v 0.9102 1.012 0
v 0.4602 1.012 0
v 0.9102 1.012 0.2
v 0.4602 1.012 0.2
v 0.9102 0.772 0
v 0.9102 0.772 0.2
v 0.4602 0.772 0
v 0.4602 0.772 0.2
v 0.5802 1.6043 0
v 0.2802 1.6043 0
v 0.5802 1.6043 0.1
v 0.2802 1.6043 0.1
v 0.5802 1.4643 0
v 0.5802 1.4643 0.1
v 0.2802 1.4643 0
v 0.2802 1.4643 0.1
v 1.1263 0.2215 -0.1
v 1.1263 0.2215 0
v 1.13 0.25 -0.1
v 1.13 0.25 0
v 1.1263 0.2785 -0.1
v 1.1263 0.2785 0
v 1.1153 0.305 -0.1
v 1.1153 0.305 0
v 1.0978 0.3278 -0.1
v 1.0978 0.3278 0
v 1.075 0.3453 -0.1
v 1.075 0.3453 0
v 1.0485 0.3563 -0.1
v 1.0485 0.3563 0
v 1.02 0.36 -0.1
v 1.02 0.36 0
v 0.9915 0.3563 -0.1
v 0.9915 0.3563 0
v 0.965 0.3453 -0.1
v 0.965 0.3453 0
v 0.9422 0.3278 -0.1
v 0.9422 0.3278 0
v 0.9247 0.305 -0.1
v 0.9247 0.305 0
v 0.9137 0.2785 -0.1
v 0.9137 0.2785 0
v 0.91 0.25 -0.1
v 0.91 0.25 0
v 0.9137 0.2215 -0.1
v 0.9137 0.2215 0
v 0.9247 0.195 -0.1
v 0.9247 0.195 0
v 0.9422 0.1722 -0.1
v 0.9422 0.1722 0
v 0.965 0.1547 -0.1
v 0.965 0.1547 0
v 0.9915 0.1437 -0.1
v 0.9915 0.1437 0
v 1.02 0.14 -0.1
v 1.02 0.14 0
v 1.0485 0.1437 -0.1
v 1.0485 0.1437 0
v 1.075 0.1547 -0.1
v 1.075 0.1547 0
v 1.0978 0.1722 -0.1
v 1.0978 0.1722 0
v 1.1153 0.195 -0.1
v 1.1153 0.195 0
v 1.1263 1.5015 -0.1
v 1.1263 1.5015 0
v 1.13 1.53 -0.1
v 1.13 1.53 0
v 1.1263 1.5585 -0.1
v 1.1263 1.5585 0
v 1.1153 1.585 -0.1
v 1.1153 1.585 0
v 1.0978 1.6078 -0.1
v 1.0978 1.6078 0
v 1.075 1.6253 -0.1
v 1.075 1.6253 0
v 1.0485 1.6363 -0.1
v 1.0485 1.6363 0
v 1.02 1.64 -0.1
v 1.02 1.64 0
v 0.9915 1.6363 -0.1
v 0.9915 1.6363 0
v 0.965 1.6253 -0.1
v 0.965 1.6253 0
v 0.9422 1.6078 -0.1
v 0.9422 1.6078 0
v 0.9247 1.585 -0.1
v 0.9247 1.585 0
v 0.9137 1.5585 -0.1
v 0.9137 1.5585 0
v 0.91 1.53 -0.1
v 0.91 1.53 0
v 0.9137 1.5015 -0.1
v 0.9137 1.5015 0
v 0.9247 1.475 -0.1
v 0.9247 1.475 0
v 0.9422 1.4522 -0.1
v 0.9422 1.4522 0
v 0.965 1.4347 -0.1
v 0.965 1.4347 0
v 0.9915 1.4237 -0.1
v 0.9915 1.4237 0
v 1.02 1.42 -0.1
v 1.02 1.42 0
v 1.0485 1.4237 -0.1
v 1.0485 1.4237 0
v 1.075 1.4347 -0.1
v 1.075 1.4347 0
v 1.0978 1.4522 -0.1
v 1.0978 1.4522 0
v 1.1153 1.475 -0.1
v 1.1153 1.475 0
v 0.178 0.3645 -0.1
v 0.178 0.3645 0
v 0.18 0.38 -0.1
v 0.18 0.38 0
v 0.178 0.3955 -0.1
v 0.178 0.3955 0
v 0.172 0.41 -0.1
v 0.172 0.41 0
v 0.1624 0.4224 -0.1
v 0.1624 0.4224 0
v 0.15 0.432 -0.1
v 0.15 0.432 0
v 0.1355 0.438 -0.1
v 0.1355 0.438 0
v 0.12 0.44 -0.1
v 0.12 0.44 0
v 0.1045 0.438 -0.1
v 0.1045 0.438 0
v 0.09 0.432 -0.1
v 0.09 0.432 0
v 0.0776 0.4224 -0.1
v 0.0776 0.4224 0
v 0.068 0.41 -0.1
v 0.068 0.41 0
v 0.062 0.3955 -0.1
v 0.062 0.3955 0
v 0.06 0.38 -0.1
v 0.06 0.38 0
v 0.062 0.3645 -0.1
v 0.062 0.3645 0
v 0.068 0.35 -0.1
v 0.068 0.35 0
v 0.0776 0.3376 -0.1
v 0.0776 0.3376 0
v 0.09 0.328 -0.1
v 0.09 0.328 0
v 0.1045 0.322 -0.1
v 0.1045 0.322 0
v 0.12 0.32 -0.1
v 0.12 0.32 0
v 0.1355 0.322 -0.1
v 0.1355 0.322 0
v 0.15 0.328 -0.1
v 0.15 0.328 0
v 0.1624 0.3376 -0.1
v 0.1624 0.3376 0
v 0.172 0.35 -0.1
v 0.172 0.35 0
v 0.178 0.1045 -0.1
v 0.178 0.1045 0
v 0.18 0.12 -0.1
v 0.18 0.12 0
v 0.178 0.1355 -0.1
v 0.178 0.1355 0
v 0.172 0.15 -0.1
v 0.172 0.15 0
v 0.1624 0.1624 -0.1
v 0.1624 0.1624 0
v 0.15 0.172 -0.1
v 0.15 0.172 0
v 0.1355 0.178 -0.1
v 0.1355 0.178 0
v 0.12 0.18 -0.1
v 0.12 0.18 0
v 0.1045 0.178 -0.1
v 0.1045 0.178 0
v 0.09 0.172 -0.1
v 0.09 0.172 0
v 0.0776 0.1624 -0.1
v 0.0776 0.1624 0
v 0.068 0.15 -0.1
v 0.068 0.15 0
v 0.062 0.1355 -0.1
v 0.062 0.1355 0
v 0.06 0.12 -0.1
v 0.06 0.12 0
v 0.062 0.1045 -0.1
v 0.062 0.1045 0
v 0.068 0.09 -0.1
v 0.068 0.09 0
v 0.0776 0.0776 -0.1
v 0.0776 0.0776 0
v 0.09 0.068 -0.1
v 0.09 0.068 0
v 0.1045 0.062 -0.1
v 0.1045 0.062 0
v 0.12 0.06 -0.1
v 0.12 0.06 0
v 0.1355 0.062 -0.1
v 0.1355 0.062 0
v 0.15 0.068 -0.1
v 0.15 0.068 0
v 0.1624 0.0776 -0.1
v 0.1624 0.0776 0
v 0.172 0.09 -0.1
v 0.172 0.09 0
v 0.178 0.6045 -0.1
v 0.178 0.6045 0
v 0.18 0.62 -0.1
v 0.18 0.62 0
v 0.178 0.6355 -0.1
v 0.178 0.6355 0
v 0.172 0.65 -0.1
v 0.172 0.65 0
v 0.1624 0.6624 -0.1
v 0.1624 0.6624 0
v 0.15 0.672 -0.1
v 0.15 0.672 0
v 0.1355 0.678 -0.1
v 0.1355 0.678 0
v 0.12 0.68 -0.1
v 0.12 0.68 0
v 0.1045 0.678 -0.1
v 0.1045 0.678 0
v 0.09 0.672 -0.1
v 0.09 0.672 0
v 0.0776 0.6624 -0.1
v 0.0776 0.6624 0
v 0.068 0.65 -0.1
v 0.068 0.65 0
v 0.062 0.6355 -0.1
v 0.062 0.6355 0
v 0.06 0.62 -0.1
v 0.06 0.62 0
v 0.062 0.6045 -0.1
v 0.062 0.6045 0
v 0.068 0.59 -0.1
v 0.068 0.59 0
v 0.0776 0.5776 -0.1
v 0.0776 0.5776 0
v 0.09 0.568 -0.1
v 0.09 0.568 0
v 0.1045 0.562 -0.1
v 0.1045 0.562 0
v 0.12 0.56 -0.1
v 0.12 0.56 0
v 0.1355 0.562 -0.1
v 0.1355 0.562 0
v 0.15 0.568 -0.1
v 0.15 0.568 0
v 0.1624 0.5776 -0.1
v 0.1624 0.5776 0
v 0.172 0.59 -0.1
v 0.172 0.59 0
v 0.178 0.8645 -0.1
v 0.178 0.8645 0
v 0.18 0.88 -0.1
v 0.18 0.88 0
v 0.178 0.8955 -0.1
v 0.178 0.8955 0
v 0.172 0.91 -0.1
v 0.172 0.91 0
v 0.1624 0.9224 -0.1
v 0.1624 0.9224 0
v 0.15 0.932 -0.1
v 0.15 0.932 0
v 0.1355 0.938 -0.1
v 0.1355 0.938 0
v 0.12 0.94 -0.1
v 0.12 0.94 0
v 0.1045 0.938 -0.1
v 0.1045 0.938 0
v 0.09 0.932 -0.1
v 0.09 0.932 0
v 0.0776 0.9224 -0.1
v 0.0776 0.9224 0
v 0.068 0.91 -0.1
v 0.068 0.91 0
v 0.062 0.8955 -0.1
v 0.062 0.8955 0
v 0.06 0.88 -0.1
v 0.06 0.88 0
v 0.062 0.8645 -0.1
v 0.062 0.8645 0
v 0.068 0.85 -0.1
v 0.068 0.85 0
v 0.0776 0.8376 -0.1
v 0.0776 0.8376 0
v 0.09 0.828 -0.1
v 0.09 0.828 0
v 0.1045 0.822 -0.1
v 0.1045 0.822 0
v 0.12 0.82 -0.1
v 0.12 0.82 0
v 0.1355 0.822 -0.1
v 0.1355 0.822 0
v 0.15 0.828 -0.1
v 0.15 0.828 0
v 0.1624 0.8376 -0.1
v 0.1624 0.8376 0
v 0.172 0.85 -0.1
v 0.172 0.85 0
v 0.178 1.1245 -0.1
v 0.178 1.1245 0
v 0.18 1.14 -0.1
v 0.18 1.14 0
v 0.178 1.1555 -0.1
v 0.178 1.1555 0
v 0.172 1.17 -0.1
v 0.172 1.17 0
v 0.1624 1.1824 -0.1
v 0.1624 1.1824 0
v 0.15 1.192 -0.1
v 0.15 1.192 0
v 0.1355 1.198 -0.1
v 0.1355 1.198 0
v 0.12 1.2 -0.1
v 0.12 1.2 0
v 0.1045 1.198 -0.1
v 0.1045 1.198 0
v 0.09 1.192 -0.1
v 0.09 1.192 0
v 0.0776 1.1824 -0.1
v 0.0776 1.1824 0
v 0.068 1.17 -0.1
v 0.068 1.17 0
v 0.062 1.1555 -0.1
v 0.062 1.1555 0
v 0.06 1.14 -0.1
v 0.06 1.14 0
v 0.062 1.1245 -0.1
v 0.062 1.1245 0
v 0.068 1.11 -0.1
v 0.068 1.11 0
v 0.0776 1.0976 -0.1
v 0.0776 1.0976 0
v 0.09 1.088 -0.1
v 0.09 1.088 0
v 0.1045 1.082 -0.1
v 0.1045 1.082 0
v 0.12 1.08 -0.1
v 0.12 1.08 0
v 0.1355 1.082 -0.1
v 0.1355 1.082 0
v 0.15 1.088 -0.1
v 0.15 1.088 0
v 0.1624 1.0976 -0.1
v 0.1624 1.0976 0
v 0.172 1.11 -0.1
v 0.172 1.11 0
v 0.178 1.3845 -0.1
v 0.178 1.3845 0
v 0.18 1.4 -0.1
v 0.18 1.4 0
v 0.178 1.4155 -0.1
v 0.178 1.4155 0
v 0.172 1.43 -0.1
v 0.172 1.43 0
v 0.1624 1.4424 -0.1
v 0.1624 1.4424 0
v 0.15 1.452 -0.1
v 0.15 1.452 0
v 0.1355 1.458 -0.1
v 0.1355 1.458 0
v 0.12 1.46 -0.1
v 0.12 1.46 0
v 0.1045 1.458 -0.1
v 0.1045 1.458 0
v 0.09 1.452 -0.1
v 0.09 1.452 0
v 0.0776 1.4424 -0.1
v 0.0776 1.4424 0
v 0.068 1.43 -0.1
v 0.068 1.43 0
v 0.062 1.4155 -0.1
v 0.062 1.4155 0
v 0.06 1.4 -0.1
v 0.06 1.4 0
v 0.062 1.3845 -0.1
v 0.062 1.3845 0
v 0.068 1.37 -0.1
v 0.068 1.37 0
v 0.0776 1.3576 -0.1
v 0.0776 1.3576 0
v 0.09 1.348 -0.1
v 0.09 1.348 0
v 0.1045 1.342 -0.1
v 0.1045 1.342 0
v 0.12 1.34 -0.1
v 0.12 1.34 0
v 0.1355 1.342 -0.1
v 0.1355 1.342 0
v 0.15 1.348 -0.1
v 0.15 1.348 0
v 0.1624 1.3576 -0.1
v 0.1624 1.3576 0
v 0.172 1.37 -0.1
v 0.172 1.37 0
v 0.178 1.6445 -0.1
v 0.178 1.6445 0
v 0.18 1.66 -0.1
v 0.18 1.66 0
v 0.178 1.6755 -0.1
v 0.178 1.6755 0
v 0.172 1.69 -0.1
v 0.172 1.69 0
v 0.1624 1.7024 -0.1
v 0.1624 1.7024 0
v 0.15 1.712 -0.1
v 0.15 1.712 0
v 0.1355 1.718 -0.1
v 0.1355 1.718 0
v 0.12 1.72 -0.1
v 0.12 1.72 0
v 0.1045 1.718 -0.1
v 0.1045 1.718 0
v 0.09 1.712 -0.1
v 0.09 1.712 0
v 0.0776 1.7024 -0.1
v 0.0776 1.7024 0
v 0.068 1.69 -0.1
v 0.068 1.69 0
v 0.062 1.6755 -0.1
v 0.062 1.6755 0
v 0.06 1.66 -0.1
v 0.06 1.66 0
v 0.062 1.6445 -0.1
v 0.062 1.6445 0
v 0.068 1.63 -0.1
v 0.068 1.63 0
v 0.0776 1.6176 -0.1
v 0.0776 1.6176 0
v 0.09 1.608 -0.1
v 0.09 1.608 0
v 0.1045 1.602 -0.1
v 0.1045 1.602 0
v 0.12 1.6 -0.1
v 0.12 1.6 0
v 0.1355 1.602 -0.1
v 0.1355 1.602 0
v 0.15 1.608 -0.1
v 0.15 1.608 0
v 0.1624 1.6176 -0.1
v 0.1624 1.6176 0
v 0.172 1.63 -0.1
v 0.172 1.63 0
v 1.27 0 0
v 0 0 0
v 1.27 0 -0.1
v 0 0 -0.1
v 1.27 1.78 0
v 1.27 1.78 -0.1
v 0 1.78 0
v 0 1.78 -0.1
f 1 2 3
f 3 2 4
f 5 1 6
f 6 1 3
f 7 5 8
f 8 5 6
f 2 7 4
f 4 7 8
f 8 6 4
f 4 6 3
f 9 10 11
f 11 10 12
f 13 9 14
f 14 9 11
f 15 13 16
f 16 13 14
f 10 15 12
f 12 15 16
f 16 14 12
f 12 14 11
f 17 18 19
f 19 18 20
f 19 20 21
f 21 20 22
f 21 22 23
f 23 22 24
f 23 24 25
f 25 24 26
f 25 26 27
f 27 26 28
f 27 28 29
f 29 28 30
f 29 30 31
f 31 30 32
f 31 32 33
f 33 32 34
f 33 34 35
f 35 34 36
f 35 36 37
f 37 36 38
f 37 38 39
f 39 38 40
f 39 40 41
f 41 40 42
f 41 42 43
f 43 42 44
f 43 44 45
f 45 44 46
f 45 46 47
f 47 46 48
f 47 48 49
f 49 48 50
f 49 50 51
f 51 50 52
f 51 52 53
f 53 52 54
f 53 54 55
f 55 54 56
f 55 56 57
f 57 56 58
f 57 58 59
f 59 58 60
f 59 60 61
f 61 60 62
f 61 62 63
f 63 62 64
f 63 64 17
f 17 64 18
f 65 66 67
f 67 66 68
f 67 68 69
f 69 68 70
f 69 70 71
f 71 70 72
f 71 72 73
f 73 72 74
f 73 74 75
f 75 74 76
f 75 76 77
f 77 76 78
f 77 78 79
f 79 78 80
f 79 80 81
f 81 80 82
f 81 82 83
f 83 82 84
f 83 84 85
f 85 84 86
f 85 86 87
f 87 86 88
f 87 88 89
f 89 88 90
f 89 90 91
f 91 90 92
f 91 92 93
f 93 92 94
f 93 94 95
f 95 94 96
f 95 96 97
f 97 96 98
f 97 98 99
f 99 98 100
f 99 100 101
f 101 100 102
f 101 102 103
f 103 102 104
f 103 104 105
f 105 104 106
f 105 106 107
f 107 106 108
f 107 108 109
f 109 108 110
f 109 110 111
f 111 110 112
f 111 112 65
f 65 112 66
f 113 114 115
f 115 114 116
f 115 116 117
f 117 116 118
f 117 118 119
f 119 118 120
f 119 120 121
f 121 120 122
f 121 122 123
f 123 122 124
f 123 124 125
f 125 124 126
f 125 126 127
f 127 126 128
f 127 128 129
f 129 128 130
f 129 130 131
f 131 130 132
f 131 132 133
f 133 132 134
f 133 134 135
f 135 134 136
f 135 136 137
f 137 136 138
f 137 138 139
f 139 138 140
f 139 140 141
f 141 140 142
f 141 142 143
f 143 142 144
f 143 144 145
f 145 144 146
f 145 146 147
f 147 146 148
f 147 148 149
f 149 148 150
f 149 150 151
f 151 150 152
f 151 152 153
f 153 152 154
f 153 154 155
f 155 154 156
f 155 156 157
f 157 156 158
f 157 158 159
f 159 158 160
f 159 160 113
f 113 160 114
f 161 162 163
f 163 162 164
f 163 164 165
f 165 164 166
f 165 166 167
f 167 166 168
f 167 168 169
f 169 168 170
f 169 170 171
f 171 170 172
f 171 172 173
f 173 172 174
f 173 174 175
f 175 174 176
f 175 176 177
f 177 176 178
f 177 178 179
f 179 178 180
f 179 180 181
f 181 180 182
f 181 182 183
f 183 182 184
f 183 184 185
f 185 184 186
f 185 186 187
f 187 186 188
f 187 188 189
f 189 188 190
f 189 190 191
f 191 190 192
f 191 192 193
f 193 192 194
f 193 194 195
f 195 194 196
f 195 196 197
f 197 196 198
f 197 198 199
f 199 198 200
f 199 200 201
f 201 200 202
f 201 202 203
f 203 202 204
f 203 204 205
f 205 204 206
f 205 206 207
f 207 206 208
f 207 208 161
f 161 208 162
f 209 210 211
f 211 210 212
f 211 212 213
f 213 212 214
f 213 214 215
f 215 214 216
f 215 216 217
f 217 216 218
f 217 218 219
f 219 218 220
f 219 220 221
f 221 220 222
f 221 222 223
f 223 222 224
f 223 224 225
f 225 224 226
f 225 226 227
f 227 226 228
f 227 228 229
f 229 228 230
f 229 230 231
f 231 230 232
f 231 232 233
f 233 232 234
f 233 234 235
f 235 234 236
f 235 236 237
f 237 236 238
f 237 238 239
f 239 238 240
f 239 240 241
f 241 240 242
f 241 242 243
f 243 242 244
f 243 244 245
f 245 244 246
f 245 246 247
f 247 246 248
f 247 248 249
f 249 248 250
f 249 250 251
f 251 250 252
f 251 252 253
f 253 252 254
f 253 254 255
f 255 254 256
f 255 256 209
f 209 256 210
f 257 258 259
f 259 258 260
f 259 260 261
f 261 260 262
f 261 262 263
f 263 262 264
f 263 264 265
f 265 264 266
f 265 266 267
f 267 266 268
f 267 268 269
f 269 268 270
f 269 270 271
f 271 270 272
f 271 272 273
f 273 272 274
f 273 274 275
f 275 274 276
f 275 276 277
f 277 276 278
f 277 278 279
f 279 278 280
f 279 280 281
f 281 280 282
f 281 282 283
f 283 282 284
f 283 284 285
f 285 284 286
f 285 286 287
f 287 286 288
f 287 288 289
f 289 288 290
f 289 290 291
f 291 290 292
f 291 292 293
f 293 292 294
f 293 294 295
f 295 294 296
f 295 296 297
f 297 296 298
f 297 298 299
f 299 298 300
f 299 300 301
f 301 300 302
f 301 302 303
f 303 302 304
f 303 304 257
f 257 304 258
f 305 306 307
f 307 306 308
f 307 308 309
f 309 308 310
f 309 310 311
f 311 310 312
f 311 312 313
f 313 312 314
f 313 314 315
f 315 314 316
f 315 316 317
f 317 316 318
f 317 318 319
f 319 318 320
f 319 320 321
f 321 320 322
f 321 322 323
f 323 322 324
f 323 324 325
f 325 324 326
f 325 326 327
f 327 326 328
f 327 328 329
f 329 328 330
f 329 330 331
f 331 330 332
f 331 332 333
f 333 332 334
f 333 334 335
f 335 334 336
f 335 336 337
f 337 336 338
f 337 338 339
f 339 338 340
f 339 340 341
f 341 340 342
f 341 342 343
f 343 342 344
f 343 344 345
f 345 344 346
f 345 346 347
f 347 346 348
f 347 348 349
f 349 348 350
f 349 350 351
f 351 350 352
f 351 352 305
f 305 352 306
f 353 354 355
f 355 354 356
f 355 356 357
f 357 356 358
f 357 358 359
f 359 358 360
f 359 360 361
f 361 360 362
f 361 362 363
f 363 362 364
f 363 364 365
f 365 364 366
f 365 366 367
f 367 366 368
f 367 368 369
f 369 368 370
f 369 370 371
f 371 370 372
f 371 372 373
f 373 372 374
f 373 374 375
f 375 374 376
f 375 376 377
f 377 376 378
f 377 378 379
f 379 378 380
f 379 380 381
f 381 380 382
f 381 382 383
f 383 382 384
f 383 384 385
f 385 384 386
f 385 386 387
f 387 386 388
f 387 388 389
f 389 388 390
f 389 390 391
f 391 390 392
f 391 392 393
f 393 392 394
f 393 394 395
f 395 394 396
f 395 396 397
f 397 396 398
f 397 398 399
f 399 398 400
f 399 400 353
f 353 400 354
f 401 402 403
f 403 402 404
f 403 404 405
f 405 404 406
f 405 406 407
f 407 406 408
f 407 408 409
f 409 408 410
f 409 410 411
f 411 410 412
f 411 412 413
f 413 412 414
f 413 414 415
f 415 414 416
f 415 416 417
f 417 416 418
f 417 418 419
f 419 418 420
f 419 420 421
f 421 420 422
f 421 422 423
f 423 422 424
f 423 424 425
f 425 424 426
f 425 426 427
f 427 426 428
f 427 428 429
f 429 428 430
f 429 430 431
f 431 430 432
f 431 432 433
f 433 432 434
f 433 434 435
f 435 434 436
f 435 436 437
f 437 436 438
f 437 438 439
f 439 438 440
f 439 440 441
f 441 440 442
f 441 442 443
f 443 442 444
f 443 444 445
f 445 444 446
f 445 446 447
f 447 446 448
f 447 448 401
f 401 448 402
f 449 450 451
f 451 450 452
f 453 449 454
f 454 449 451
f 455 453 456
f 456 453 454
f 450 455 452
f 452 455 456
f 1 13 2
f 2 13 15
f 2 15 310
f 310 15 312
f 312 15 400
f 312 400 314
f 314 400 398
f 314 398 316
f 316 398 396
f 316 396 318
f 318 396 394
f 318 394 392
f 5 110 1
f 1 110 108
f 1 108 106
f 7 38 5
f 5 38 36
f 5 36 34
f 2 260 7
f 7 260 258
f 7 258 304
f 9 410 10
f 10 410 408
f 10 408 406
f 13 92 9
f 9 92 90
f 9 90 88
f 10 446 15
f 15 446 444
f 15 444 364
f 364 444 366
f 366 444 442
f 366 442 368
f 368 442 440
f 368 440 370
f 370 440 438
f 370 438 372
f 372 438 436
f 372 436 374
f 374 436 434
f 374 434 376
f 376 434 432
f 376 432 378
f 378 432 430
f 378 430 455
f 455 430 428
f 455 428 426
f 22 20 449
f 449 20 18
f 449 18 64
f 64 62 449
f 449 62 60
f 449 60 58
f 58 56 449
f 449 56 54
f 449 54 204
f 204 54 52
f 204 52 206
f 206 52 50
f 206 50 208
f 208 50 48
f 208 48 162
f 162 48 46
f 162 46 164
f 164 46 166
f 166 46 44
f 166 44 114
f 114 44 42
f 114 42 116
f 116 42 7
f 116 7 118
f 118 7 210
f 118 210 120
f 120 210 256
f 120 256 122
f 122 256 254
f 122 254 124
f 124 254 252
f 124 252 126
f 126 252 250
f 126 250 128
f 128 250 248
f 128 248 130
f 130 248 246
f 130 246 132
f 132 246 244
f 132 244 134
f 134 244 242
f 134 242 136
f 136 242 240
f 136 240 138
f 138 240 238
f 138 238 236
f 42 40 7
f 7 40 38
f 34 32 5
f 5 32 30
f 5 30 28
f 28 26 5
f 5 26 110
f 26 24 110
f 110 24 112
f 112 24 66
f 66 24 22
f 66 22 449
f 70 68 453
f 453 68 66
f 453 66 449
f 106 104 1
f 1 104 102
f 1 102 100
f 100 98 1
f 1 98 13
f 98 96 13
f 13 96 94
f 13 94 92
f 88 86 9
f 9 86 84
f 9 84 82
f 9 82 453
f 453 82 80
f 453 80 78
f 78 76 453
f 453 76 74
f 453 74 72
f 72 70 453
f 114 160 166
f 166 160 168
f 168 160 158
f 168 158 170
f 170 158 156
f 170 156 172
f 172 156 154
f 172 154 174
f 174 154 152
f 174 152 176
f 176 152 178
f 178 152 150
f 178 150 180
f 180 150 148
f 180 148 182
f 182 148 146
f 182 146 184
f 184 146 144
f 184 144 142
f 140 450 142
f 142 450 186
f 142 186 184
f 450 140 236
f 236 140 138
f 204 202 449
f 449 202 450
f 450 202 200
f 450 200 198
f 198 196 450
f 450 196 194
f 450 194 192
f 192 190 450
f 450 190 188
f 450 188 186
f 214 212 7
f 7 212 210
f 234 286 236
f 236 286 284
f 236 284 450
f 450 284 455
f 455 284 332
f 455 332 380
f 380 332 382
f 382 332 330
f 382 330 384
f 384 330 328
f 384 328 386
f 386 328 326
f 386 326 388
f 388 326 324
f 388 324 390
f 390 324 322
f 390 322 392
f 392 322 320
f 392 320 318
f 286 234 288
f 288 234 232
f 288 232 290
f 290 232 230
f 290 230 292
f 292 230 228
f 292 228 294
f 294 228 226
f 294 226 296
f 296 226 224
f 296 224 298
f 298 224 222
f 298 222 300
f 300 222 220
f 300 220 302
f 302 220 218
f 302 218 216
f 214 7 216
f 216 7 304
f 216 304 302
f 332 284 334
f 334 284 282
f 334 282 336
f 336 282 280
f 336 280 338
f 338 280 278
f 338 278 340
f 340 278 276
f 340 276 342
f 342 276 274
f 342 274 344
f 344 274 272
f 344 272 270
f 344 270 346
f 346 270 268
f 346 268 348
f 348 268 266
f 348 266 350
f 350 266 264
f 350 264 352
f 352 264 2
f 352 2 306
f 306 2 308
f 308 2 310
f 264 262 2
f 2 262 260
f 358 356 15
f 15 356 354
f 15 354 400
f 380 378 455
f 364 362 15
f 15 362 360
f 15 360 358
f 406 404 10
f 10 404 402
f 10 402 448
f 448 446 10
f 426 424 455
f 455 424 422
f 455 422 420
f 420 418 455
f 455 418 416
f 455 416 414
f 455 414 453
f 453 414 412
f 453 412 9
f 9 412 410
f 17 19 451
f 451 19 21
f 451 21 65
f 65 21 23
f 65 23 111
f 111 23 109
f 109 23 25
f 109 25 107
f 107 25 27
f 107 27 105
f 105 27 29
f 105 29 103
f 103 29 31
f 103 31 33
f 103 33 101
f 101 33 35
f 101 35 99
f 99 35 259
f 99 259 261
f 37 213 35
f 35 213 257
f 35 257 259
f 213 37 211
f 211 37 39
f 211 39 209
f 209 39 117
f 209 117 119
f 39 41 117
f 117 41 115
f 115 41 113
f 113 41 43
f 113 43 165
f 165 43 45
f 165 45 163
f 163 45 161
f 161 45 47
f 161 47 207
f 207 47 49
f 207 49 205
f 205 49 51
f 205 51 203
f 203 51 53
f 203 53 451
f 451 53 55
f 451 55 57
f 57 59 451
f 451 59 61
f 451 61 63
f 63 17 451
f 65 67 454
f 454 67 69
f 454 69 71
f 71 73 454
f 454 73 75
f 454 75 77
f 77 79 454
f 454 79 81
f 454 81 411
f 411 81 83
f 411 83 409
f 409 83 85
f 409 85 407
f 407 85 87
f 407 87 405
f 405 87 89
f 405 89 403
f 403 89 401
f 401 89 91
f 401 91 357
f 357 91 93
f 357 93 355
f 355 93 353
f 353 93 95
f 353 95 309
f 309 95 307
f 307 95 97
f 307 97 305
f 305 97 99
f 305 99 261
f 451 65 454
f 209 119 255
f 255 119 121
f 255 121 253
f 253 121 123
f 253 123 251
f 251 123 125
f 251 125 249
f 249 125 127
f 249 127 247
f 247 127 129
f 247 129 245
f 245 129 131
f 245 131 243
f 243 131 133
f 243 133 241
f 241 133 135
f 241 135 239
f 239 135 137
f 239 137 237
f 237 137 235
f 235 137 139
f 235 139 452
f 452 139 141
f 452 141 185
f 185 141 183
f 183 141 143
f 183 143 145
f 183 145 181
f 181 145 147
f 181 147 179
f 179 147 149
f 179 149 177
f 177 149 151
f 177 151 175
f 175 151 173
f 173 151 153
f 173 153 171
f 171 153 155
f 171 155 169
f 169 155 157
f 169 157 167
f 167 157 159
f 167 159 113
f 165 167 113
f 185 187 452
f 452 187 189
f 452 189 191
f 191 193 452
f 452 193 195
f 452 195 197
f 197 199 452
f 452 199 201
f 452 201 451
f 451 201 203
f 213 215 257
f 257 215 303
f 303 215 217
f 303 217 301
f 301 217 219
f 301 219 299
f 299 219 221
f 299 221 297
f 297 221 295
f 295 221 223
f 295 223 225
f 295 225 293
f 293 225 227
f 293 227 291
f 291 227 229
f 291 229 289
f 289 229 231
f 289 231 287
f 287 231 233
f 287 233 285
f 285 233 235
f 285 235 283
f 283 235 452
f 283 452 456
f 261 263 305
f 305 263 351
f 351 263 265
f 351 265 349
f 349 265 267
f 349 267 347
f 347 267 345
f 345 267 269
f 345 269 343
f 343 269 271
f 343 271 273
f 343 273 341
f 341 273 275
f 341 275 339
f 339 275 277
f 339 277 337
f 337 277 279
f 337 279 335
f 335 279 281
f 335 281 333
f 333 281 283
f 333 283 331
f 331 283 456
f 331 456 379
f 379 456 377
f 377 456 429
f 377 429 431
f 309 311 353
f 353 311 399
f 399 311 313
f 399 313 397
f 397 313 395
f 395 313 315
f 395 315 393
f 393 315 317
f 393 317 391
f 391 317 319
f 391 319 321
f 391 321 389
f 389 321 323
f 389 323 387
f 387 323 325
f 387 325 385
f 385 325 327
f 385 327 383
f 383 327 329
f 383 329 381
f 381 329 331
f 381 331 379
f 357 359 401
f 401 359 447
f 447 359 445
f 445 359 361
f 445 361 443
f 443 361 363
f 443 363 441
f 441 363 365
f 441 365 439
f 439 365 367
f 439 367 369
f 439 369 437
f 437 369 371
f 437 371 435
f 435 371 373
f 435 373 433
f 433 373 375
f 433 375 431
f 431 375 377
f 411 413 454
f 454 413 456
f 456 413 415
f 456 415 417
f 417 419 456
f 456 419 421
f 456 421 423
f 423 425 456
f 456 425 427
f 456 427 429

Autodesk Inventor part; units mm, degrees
ref_plane "YZ Plane" through (0, 0, 0) normal (1, 0, 0) x (0, 1, 0)
ref_plane "XZ Plane" through (0, 0, 0) normal (0, 1, 0) x (-1, 0, 0)
ref_plane "XY Plane" through (0, 0, 0) normal (0, 0, 1) x (1, 0, 0)
sketch "Boceto1" plane through (0, 0, 0) normal (0, 0, 1) x (1, 0, 0)
  line L0 (0, 1.78) -> (1.27, 1.78)
  line L1 (0.4602, 1.012) -> (0.4602, 0.772)
  line L2 (0.4602, 0.772) -> (0.9102, 0.772)
  line L3 (0.9102, 0.772) -> (0.9102, 1.012)
  line L4 (0.9102, 1.012) -> (0.4602, 1.012)
  line L5 (0, 1.78) -> (0, 0)
  line L6 (0, 0) -> (1.27, 0)
  line L7 (1.27, 0) -> (1.27, 1.78)
  line L8 (1.27, 1.78) -> (1.02, 1.78)
  circle A0 centre (1.02, 1.53) radius 0.11
  line L9 (0, 1.78) -> (0.12, 1.78)
  circle A1 centre (0.12, 1.66) radius 0.06
  circle A2 centre (0.12, 1.4) radius 0.06
  circle A3 centre (0.12, 1.14) radius 0.06
  circle A4 centre (0.12, 0.88) radius 0.06
  circle A5 centre (0.12, 0.62) radius 0.06
  circle A6 centre (0.12, 0.12) radius 0.06
  circle A7 centre (0.12, 0.38) radius 0.06
  line L10 (0.2802, 1.6043) -> (0.2802, 1.4643)
  line L11 (0.2802, 1.4643) -> (0.5802, 1.4643)
  line L12 (0.5802, 1.4643) -> (0.5802, 1.6043)
  line L13 (0.5802, 1.6043) -> (0.2802, 1.6043)
  circle A8 centre (1.02, 0.25) radius 0.11
extrude "Extrusión1" add sketch "Boceto1" against normal blind 0.1 contours L0 L7 L6 L5 | L4 L3 L2 L1 | L13 L12 L11 L10
sketch "Boceto2" plane through (0, 0, 0) normal (0, 0, 1) x (1, 0, 0)
  line L0 (0, 1.78) -> (1.27, 1.78)
  line L1 (0.4602, 1.012) -> (0.4602, 0.772)
  line L2 (0.4602, 0.772) -> (0.9102, 0.772)
  line L3 (0.9102, 0.772) -> (0.9102, 1.012)
  line L4 (0.9102, 1.012) -> (0.4602, 1.012)
  line L5 (0, 1.78) -> (0, 0)
  line L6 (0, 0) -> (1.27, 0)
  line L7 (1.27, 0) -> (1.27, 1.78)
  line L8 (1.27, 1.78) -> (1.02, 1.78)
  circle A0 centre (1.02, 1.53) radius 0.11
  line L9 (0, 1.78) -> (0.12, 1.78)
  circle A1 centre (0.12, 1.66) radius 0.06
  circle A2 centre (0.12, 1.4) radius 0.06
  circle A3 centre (0.12, 1.14) radius 0.06
  circle A4 centre (0.12, 0.88) radius 0.06
  circle A5 centre (0.12, 0.62) radius 0.06
  circle A6 centre (0.12, 0.12) radius 0.06
  circle A7 centre (0.12, 0.38) radius 0.06
  line L10 (0.2802, 1.6043) -> (0.2802, 1.4643)
  line L11 (0.2802, 1.4643) -> (0.5802, 1.4643)
  line L12 (0.5802, 1.4643) -> (0.5802, 1.6043)
  line L13 (0.5802, 1.6043) -> (0.2802, 1.6043)
  circle A8 centre (1.02, 0.25) radius 0.11
extrude "Extrusión2" add sketch "Boceto2" along normal blind 0.1 contours L13 L12 L11 L10
sketch "Boceto3" plane through (0, 0, 0) normal (0, 0, 1) x (1, 0, 0)
  line L0 (0, 1.78) -> (1.27, 1.78)
  line L1 (0.4602, 1.012) -> (0.4602, 0.772)
  line L2 (0.4602, 0.772) -> (0.9102, 0.772)
  line L3 (0.9102, 0.772) -> (0.9102, 1.012)
  line L4 (0.9102, 1.012) -> (0.4602, 1.012)
  line L5 (0, 1.78) -> (0, 0)
  line L6 (0, 0) -> (1.27, 0)
  line L7 (1.27, 0) -> (1.27, 1.78)
  line L8 (1.27, 1.78) -> (1.02, 1.78)
  circle A0 centre (1.02, 1.53) radius 0.11
  line L9 (0, 1.78) -> (0.12, 1.78)
  circle A1 centre (0.12, 1.66) radius 0.06
  circle A2 centre (0.12, 1.4) radius 0.06
  circle A3 centre (0.12, 1.14) radius 0.06
  circle A4 centre (0.12, 0.88) radius 0.06
  circle A5 centre (0.12, 0.62) radius 0.06
  circle A6 centre (0.12, 0.12) radius 0.06
  circle A7 centre (0.12, 0.38) radius 0.06
  line L10 (0.2802, 1.6043) -> (0.2802, 1.4643)
  line L11 (0.2802, 1.4643) -> (0.5802, 1.4643)
  line L12 (0.5802, 1.4643) -> (0.5802, 1.6043)
  line L13 (0.5802, 1.6043) -> (0.2802, 1.6043)
  circle A8 centre (1.02, 0.25) radius 0.11
extrude "Extrusión3" add sketch "Boceto3" along normal blind 0.2 contours L4 L3 L2 L1
properties part number "laser"
